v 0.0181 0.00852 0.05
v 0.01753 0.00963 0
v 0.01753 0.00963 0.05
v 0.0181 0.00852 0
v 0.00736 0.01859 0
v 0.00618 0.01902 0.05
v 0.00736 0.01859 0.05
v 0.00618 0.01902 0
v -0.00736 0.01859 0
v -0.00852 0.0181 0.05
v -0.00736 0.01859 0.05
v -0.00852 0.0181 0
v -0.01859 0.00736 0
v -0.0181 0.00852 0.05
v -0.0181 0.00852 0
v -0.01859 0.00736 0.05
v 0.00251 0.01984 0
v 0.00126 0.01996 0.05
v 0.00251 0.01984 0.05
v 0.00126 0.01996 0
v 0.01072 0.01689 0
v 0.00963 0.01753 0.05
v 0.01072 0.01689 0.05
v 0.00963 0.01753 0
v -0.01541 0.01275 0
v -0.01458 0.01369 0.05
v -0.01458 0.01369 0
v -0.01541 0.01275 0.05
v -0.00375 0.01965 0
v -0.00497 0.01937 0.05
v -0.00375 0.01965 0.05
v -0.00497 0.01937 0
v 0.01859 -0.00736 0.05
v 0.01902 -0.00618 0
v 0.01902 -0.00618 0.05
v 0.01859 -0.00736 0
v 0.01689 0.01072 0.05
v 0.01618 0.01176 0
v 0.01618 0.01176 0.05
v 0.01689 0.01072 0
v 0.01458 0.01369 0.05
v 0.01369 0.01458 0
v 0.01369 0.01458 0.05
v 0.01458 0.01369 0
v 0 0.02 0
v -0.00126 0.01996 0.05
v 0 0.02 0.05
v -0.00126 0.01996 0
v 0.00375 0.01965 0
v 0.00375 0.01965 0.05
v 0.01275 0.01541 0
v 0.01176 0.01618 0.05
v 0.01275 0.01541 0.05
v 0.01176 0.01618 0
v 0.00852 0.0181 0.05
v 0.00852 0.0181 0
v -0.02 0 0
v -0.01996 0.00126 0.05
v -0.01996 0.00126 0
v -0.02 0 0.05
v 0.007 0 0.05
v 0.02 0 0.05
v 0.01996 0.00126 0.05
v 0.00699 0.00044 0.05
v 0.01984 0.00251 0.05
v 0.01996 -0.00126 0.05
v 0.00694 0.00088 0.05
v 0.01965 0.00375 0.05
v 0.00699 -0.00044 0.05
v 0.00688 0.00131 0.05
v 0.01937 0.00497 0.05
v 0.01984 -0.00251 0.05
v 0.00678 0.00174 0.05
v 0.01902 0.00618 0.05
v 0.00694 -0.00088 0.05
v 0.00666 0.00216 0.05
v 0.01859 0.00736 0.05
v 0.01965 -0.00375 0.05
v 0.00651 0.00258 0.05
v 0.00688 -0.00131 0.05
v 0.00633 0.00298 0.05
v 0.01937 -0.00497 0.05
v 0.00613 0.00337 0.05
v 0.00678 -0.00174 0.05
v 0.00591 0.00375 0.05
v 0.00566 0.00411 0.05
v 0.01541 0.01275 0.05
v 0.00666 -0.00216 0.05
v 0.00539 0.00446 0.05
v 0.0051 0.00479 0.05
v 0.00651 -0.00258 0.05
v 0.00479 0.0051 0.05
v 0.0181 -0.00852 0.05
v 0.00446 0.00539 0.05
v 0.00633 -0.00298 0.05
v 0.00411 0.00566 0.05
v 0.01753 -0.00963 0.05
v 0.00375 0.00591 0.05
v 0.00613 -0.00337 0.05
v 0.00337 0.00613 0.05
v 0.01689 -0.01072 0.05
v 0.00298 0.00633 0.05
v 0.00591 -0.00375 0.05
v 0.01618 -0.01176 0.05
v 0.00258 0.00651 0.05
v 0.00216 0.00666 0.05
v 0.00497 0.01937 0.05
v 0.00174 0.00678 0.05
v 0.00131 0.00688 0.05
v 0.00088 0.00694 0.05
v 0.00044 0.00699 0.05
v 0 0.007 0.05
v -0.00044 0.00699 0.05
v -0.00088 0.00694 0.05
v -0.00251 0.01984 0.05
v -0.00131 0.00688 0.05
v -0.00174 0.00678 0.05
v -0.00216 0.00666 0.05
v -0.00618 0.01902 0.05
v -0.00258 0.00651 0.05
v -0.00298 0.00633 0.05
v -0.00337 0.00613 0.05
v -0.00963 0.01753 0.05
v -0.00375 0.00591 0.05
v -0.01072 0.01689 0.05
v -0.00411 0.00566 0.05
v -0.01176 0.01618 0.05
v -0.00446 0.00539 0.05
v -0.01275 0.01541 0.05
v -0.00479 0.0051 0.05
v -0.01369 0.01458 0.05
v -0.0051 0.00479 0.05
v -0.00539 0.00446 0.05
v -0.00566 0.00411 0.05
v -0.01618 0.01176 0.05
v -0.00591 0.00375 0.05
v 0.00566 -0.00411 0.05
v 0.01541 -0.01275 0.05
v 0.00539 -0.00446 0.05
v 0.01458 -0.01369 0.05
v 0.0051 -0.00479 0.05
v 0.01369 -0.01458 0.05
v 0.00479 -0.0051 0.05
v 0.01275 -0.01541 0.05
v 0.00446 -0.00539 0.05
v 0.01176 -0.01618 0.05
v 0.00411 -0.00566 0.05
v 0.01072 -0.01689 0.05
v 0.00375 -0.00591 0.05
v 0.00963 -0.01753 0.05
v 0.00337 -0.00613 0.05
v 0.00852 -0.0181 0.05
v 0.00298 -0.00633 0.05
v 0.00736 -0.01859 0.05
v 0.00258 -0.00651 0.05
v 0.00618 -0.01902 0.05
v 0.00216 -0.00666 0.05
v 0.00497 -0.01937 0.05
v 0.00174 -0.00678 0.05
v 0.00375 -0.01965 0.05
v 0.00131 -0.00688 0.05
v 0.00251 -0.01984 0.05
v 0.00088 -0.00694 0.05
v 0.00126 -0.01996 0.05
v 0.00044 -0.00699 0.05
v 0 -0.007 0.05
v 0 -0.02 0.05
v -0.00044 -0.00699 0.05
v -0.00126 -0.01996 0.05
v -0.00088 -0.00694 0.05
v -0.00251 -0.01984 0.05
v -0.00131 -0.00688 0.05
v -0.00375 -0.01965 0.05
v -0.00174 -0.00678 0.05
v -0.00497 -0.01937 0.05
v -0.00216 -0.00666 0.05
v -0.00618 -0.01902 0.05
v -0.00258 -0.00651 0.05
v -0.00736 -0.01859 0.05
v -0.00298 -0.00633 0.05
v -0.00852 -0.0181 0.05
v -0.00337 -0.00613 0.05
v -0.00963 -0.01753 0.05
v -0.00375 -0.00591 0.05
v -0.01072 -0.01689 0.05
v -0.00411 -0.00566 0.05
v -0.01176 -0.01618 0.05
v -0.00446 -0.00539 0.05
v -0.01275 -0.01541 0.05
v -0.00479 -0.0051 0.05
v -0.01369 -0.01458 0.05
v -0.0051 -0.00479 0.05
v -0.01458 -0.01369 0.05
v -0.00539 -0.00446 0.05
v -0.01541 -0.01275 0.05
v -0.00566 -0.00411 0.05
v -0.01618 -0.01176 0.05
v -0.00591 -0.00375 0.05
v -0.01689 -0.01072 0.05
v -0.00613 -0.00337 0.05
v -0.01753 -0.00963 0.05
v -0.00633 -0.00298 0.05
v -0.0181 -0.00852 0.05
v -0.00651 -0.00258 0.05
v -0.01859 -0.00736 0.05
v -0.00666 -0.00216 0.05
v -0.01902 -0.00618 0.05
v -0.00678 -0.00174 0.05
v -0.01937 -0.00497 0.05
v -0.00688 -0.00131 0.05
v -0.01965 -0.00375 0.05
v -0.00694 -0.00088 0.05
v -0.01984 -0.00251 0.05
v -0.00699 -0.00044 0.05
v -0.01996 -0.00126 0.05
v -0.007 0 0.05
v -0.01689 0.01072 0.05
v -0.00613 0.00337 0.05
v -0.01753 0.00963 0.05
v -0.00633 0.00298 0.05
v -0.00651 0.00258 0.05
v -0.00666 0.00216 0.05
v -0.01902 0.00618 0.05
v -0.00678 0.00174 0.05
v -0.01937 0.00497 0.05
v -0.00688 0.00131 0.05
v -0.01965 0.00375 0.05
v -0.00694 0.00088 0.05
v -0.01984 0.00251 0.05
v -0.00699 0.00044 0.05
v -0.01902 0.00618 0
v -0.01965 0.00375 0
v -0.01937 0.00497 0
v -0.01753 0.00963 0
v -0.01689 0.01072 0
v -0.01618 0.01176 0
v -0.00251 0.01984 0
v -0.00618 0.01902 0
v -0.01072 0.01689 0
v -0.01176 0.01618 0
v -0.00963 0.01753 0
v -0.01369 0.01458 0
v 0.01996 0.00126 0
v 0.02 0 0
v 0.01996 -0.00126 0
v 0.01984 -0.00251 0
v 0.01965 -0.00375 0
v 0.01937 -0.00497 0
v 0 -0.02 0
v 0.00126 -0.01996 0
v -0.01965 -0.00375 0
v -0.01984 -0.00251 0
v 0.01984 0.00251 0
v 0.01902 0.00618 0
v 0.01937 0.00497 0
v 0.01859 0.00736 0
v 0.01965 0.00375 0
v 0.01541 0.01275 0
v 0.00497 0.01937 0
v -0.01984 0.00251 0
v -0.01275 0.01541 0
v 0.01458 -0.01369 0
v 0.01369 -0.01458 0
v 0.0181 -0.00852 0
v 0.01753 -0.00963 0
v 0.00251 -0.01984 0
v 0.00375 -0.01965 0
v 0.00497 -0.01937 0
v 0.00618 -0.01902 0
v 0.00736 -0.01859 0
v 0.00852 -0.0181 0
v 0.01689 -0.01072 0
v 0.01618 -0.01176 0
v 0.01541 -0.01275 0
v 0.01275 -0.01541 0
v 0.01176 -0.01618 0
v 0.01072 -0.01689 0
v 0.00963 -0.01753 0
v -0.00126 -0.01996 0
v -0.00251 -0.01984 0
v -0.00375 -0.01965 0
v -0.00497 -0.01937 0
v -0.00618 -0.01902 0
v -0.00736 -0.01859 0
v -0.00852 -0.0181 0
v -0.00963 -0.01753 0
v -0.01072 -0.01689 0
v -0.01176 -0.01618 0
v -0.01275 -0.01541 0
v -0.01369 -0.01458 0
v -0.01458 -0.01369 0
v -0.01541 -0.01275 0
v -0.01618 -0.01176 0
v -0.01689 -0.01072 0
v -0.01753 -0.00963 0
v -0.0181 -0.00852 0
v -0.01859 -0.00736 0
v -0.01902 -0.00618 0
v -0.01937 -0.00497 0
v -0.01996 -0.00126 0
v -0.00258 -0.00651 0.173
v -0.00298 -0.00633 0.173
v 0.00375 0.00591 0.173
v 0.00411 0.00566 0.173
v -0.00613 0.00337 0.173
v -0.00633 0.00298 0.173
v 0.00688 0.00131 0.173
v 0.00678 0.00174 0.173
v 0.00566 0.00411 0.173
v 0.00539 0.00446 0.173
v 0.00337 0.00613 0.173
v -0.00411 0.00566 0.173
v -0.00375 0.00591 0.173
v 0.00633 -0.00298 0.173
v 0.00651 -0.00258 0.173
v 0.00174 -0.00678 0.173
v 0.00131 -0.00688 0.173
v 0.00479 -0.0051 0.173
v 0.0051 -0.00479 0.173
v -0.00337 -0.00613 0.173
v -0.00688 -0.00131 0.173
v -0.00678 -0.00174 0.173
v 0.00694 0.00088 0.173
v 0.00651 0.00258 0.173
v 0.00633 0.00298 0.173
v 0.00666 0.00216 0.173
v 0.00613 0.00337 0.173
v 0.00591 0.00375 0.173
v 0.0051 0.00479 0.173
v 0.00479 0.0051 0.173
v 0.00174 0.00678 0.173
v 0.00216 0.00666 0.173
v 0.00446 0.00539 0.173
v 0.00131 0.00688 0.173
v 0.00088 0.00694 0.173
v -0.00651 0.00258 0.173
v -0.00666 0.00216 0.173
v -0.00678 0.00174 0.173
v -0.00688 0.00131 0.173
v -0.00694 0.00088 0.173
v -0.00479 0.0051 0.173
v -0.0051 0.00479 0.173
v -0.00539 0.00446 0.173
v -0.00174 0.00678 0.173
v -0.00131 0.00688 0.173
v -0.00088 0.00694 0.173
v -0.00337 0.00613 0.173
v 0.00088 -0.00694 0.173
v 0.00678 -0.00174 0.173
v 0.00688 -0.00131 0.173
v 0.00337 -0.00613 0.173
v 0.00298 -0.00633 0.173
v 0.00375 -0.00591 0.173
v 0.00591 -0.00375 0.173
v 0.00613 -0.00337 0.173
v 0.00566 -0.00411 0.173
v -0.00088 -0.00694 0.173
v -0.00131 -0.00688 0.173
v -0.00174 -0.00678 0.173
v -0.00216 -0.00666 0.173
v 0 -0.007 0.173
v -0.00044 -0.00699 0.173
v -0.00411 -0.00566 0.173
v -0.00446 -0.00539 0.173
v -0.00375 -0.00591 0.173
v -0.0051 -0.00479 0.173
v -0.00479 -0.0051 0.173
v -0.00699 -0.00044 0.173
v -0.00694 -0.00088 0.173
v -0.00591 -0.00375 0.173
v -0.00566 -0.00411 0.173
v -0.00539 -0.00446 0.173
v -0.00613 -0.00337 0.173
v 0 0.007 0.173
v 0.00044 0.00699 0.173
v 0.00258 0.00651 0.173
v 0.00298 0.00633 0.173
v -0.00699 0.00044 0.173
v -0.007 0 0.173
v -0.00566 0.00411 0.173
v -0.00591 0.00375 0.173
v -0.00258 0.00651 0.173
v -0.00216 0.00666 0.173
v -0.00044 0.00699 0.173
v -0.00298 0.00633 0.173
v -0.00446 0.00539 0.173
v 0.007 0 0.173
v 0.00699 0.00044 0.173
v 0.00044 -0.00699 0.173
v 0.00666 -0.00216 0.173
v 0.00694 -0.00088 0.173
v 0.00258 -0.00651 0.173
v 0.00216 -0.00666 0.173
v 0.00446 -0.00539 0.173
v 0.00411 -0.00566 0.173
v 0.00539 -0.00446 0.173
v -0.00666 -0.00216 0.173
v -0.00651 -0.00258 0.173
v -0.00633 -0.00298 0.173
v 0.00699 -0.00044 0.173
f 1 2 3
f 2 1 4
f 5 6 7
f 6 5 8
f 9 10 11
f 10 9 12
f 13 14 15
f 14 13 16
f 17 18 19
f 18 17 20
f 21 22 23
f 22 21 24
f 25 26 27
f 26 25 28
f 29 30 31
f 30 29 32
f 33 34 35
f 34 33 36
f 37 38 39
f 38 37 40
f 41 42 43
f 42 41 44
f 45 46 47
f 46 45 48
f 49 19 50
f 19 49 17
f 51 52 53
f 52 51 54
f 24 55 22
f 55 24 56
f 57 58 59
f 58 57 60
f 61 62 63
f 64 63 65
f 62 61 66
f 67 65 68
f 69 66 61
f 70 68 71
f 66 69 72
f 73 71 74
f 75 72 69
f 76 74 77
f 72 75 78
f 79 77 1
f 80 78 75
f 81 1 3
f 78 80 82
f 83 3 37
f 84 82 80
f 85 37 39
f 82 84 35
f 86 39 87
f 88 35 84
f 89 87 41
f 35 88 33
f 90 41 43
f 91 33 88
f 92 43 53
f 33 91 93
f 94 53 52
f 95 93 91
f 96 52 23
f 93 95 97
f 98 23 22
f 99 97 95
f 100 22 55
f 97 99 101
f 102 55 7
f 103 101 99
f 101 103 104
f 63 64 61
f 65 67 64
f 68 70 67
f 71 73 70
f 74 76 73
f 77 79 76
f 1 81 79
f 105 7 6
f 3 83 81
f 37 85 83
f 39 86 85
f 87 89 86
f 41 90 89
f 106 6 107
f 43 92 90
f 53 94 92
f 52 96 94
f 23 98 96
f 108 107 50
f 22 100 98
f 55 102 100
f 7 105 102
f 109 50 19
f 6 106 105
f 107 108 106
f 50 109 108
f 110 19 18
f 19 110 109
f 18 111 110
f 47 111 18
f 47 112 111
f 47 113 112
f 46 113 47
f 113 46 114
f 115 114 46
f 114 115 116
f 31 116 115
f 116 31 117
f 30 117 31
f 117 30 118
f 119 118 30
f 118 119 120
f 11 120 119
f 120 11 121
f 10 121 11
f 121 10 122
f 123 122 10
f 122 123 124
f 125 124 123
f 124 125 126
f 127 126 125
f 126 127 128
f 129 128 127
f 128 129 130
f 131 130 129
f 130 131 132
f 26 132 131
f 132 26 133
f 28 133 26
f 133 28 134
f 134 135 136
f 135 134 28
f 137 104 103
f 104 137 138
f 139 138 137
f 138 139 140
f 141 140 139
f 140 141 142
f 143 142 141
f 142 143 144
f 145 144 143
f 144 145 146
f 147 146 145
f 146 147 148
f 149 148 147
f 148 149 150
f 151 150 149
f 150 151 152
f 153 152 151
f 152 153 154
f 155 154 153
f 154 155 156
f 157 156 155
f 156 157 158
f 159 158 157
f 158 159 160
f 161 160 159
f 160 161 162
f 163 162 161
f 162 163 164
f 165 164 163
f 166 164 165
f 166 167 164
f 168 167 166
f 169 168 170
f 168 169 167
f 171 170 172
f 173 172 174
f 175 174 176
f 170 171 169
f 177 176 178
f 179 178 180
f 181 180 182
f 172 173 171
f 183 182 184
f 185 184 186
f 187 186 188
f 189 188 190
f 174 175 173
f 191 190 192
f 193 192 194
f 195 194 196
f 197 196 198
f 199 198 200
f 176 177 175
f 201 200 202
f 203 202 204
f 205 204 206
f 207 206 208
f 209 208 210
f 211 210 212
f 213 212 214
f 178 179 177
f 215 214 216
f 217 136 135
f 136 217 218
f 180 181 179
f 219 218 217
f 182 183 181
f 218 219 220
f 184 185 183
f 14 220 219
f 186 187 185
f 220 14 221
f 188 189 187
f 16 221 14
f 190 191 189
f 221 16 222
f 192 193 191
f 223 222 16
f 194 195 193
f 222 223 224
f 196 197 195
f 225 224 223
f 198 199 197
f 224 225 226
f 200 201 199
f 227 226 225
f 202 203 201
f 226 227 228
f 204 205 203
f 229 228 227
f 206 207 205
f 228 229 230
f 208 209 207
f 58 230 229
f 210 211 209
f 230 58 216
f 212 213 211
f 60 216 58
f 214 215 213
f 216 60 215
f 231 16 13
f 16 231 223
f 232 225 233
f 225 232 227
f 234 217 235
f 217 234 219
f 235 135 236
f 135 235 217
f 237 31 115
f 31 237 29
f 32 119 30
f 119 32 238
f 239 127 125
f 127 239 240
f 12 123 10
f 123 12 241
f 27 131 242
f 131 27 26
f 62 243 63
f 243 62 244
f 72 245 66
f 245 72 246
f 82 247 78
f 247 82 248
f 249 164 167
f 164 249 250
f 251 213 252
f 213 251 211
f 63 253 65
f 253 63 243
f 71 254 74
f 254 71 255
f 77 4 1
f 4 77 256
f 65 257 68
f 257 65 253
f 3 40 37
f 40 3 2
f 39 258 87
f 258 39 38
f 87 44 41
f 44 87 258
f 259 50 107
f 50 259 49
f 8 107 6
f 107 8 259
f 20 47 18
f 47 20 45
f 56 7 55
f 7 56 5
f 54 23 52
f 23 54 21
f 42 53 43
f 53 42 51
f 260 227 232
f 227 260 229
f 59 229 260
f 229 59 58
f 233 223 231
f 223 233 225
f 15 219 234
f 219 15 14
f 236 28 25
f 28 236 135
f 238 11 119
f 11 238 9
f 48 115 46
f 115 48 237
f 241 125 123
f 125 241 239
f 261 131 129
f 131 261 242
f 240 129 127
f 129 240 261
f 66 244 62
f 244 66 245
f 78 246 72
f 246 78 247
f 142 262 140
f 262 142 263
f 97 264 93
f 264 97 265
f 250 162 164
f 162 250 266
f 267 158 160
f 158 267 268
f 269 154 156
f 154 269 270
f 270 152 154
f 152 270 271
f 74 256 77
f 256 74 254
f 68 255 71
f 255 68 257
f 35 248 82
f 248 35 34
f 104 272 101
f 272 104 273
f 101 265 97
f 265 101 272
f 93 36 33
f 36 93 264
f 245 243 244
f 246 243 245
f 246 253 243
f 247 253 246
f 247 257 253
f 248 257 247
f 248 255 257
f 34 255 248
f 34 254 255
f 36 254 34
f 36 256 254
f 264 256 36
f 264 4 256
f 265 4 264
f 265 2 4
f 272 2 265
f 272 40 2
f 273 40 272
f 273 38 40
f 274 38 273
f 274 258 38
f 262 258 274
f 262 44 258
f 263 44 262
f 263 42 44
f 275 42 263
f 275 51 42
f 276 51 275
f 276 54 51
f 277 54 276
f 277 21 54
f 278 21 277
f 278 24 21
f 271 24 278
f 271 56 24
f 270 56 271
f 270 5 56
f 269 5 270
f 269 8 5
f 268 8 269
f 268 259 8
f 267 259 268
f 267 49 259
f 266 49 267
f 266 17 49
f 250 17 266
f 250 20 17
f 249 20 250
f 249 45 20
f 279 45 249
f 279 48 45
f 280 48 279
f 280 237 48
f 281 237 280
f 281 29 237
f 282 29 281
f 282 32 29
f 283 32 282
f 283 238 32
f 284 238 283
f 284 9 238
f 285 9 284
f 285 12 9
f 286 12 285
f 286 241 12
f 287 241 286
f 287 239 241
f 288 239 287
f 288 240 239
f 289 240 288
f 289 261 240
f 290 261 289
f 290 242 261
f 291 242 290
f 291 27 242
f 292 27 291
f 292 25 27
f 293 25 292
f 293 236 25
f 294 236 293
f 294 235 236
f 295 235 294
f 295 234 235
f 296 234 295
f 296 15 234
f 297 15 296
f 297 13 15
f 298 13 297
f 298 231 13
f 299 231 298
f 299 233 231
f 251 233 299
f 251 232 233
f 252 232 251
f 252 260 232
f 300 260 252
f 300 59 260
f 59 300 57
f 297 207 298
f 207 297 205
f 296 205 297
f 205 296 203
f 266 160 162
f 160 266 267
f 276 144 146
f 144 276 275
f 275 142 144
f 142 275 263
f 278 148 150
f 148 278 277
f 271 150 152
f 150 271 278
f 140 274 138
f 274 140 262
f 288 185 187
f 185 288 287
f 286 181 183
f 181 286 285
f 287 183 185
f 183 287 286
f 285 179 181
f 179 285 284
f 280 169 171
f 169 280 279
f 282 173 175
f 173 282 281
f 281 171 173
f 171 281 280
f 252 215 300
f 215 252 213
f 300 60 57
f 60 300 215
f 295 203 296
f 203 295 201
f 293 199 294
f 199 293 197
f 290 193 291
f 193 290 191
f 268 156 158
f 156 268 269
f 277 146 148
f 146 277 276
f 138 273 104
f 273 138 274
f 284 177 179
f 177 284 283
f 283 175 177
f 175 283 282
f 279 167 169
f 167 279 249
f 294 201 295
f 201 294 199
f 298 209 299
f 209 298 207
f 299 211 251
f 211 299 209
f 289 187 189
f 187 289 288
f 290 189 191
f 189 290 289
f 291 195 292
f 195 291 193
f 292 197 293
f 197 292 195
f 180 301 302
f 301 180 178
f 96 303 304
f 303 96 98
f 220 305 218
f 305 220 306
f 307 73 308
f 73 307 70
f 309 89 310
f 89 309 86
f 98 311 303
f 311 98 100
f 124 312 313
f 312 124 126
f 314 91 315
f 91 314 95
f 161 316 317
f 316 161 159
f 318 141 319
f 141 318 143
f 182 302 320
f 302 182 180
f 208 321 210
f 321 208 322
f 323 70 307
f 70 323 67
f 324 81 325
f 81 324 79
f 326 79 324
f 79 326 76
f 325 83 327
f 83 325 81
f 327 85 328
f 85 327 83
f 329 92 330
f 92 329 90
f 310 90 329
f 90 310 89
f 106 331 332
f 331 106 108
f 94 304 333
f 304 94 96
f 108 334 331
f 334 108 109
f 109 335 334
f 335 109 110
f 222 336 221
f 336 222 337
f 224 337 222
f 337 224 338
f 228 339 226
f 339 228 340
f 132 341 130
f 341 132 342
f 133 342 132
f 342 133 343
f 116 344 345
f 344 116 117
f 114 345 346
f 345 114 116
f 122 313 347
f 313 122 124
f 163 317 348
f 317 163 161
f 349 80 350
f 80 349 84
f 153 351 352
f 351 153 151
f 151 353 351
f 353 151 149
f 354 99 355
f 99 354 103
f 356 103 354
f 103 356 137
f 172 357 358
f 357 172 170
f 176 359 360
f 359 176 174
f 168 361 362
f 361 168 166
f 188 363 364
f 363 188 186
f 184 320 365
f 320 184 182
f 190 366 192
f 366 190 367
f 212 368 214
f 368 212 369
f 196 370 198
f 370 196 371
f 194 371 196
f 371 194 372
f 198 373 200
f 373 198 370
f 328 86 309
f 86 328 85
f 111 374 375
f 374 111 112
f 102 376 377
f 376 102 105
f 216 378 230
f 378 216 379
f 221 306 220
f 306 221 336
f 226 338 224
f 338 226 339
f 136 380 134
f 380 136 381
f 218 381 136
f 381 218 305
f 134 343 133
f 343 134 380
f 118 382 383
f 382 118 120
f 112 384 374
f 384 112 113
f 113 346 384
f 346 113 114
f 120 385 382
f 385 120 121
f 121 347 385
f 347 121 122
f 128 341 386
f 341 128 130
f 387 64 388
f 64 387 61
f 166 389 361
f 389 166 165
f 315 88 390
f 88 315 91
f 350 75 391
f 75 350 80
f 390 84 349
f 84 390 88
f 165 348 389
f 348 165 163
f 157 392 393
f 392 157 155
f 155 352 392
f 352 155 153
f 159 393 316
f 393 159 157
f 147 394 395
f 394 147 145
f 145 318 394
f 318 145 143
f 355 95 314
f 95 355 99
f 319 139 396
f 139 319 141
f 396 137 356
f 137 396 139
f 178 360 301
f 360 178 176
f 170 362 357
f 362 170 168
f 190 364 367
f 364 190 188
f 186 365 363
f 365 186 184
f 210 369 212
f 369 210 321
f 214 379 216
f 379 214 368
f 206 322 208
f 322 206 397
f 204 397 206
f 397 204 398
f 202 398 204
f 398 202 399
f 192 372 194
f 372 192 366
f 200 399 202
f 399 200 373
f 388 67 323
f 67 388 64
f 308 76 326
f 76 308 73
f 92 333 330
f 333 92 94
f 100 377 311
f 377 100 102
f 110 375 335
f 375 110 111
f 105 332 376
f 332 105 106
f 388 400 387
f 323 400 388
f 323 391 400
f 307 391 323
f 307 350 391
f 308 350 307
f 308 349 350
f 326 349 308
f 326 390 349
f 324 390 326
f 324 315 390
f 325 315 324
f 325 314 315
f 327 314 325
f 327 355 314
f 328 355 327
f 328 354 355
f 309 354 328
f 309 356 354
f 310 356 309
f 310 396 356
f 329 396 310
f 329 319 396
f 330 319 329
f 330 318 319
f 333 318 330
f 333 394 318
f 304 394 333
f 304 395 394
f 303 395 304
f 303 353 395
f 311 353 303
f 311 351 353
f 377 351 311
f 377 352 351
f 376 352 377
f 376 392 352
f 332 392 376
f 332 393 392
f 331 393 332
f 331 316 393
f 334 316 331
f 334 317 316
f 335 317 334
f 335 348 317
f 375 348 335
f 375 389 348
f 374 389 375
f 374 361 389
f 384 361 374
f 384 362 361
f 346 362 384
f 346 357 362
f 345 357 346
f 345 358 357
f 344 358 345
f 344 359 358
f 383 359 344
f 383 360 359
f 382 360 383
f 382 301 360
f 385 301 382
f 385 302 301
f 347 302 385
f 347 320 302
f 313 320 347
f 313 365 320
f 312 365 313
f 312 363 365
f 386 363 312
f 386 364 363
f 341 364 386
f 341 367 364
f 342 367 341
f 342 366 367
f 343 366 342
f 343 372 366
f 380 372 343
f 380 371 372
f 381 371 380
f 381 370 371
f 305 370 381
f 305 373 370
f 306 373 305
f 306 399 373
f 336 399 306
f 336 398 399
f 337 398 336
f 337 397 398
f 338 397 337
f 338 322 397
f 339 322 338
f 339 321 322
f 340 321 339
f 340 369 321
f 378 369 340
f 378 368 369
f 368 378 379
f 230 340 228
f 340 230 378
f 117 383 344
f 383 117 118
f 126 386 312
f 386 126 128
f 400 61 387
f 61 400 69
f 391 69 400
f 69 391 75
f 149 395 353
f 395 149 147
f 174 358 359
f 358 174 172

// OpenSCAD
$fn=100;

r1 = 0.020;
r2 = 0.007;
h1 = 0.050;
h2 = 0.173;

cylinder(r=r1, h=h1);

cylinder(r=r2, h=h2);
